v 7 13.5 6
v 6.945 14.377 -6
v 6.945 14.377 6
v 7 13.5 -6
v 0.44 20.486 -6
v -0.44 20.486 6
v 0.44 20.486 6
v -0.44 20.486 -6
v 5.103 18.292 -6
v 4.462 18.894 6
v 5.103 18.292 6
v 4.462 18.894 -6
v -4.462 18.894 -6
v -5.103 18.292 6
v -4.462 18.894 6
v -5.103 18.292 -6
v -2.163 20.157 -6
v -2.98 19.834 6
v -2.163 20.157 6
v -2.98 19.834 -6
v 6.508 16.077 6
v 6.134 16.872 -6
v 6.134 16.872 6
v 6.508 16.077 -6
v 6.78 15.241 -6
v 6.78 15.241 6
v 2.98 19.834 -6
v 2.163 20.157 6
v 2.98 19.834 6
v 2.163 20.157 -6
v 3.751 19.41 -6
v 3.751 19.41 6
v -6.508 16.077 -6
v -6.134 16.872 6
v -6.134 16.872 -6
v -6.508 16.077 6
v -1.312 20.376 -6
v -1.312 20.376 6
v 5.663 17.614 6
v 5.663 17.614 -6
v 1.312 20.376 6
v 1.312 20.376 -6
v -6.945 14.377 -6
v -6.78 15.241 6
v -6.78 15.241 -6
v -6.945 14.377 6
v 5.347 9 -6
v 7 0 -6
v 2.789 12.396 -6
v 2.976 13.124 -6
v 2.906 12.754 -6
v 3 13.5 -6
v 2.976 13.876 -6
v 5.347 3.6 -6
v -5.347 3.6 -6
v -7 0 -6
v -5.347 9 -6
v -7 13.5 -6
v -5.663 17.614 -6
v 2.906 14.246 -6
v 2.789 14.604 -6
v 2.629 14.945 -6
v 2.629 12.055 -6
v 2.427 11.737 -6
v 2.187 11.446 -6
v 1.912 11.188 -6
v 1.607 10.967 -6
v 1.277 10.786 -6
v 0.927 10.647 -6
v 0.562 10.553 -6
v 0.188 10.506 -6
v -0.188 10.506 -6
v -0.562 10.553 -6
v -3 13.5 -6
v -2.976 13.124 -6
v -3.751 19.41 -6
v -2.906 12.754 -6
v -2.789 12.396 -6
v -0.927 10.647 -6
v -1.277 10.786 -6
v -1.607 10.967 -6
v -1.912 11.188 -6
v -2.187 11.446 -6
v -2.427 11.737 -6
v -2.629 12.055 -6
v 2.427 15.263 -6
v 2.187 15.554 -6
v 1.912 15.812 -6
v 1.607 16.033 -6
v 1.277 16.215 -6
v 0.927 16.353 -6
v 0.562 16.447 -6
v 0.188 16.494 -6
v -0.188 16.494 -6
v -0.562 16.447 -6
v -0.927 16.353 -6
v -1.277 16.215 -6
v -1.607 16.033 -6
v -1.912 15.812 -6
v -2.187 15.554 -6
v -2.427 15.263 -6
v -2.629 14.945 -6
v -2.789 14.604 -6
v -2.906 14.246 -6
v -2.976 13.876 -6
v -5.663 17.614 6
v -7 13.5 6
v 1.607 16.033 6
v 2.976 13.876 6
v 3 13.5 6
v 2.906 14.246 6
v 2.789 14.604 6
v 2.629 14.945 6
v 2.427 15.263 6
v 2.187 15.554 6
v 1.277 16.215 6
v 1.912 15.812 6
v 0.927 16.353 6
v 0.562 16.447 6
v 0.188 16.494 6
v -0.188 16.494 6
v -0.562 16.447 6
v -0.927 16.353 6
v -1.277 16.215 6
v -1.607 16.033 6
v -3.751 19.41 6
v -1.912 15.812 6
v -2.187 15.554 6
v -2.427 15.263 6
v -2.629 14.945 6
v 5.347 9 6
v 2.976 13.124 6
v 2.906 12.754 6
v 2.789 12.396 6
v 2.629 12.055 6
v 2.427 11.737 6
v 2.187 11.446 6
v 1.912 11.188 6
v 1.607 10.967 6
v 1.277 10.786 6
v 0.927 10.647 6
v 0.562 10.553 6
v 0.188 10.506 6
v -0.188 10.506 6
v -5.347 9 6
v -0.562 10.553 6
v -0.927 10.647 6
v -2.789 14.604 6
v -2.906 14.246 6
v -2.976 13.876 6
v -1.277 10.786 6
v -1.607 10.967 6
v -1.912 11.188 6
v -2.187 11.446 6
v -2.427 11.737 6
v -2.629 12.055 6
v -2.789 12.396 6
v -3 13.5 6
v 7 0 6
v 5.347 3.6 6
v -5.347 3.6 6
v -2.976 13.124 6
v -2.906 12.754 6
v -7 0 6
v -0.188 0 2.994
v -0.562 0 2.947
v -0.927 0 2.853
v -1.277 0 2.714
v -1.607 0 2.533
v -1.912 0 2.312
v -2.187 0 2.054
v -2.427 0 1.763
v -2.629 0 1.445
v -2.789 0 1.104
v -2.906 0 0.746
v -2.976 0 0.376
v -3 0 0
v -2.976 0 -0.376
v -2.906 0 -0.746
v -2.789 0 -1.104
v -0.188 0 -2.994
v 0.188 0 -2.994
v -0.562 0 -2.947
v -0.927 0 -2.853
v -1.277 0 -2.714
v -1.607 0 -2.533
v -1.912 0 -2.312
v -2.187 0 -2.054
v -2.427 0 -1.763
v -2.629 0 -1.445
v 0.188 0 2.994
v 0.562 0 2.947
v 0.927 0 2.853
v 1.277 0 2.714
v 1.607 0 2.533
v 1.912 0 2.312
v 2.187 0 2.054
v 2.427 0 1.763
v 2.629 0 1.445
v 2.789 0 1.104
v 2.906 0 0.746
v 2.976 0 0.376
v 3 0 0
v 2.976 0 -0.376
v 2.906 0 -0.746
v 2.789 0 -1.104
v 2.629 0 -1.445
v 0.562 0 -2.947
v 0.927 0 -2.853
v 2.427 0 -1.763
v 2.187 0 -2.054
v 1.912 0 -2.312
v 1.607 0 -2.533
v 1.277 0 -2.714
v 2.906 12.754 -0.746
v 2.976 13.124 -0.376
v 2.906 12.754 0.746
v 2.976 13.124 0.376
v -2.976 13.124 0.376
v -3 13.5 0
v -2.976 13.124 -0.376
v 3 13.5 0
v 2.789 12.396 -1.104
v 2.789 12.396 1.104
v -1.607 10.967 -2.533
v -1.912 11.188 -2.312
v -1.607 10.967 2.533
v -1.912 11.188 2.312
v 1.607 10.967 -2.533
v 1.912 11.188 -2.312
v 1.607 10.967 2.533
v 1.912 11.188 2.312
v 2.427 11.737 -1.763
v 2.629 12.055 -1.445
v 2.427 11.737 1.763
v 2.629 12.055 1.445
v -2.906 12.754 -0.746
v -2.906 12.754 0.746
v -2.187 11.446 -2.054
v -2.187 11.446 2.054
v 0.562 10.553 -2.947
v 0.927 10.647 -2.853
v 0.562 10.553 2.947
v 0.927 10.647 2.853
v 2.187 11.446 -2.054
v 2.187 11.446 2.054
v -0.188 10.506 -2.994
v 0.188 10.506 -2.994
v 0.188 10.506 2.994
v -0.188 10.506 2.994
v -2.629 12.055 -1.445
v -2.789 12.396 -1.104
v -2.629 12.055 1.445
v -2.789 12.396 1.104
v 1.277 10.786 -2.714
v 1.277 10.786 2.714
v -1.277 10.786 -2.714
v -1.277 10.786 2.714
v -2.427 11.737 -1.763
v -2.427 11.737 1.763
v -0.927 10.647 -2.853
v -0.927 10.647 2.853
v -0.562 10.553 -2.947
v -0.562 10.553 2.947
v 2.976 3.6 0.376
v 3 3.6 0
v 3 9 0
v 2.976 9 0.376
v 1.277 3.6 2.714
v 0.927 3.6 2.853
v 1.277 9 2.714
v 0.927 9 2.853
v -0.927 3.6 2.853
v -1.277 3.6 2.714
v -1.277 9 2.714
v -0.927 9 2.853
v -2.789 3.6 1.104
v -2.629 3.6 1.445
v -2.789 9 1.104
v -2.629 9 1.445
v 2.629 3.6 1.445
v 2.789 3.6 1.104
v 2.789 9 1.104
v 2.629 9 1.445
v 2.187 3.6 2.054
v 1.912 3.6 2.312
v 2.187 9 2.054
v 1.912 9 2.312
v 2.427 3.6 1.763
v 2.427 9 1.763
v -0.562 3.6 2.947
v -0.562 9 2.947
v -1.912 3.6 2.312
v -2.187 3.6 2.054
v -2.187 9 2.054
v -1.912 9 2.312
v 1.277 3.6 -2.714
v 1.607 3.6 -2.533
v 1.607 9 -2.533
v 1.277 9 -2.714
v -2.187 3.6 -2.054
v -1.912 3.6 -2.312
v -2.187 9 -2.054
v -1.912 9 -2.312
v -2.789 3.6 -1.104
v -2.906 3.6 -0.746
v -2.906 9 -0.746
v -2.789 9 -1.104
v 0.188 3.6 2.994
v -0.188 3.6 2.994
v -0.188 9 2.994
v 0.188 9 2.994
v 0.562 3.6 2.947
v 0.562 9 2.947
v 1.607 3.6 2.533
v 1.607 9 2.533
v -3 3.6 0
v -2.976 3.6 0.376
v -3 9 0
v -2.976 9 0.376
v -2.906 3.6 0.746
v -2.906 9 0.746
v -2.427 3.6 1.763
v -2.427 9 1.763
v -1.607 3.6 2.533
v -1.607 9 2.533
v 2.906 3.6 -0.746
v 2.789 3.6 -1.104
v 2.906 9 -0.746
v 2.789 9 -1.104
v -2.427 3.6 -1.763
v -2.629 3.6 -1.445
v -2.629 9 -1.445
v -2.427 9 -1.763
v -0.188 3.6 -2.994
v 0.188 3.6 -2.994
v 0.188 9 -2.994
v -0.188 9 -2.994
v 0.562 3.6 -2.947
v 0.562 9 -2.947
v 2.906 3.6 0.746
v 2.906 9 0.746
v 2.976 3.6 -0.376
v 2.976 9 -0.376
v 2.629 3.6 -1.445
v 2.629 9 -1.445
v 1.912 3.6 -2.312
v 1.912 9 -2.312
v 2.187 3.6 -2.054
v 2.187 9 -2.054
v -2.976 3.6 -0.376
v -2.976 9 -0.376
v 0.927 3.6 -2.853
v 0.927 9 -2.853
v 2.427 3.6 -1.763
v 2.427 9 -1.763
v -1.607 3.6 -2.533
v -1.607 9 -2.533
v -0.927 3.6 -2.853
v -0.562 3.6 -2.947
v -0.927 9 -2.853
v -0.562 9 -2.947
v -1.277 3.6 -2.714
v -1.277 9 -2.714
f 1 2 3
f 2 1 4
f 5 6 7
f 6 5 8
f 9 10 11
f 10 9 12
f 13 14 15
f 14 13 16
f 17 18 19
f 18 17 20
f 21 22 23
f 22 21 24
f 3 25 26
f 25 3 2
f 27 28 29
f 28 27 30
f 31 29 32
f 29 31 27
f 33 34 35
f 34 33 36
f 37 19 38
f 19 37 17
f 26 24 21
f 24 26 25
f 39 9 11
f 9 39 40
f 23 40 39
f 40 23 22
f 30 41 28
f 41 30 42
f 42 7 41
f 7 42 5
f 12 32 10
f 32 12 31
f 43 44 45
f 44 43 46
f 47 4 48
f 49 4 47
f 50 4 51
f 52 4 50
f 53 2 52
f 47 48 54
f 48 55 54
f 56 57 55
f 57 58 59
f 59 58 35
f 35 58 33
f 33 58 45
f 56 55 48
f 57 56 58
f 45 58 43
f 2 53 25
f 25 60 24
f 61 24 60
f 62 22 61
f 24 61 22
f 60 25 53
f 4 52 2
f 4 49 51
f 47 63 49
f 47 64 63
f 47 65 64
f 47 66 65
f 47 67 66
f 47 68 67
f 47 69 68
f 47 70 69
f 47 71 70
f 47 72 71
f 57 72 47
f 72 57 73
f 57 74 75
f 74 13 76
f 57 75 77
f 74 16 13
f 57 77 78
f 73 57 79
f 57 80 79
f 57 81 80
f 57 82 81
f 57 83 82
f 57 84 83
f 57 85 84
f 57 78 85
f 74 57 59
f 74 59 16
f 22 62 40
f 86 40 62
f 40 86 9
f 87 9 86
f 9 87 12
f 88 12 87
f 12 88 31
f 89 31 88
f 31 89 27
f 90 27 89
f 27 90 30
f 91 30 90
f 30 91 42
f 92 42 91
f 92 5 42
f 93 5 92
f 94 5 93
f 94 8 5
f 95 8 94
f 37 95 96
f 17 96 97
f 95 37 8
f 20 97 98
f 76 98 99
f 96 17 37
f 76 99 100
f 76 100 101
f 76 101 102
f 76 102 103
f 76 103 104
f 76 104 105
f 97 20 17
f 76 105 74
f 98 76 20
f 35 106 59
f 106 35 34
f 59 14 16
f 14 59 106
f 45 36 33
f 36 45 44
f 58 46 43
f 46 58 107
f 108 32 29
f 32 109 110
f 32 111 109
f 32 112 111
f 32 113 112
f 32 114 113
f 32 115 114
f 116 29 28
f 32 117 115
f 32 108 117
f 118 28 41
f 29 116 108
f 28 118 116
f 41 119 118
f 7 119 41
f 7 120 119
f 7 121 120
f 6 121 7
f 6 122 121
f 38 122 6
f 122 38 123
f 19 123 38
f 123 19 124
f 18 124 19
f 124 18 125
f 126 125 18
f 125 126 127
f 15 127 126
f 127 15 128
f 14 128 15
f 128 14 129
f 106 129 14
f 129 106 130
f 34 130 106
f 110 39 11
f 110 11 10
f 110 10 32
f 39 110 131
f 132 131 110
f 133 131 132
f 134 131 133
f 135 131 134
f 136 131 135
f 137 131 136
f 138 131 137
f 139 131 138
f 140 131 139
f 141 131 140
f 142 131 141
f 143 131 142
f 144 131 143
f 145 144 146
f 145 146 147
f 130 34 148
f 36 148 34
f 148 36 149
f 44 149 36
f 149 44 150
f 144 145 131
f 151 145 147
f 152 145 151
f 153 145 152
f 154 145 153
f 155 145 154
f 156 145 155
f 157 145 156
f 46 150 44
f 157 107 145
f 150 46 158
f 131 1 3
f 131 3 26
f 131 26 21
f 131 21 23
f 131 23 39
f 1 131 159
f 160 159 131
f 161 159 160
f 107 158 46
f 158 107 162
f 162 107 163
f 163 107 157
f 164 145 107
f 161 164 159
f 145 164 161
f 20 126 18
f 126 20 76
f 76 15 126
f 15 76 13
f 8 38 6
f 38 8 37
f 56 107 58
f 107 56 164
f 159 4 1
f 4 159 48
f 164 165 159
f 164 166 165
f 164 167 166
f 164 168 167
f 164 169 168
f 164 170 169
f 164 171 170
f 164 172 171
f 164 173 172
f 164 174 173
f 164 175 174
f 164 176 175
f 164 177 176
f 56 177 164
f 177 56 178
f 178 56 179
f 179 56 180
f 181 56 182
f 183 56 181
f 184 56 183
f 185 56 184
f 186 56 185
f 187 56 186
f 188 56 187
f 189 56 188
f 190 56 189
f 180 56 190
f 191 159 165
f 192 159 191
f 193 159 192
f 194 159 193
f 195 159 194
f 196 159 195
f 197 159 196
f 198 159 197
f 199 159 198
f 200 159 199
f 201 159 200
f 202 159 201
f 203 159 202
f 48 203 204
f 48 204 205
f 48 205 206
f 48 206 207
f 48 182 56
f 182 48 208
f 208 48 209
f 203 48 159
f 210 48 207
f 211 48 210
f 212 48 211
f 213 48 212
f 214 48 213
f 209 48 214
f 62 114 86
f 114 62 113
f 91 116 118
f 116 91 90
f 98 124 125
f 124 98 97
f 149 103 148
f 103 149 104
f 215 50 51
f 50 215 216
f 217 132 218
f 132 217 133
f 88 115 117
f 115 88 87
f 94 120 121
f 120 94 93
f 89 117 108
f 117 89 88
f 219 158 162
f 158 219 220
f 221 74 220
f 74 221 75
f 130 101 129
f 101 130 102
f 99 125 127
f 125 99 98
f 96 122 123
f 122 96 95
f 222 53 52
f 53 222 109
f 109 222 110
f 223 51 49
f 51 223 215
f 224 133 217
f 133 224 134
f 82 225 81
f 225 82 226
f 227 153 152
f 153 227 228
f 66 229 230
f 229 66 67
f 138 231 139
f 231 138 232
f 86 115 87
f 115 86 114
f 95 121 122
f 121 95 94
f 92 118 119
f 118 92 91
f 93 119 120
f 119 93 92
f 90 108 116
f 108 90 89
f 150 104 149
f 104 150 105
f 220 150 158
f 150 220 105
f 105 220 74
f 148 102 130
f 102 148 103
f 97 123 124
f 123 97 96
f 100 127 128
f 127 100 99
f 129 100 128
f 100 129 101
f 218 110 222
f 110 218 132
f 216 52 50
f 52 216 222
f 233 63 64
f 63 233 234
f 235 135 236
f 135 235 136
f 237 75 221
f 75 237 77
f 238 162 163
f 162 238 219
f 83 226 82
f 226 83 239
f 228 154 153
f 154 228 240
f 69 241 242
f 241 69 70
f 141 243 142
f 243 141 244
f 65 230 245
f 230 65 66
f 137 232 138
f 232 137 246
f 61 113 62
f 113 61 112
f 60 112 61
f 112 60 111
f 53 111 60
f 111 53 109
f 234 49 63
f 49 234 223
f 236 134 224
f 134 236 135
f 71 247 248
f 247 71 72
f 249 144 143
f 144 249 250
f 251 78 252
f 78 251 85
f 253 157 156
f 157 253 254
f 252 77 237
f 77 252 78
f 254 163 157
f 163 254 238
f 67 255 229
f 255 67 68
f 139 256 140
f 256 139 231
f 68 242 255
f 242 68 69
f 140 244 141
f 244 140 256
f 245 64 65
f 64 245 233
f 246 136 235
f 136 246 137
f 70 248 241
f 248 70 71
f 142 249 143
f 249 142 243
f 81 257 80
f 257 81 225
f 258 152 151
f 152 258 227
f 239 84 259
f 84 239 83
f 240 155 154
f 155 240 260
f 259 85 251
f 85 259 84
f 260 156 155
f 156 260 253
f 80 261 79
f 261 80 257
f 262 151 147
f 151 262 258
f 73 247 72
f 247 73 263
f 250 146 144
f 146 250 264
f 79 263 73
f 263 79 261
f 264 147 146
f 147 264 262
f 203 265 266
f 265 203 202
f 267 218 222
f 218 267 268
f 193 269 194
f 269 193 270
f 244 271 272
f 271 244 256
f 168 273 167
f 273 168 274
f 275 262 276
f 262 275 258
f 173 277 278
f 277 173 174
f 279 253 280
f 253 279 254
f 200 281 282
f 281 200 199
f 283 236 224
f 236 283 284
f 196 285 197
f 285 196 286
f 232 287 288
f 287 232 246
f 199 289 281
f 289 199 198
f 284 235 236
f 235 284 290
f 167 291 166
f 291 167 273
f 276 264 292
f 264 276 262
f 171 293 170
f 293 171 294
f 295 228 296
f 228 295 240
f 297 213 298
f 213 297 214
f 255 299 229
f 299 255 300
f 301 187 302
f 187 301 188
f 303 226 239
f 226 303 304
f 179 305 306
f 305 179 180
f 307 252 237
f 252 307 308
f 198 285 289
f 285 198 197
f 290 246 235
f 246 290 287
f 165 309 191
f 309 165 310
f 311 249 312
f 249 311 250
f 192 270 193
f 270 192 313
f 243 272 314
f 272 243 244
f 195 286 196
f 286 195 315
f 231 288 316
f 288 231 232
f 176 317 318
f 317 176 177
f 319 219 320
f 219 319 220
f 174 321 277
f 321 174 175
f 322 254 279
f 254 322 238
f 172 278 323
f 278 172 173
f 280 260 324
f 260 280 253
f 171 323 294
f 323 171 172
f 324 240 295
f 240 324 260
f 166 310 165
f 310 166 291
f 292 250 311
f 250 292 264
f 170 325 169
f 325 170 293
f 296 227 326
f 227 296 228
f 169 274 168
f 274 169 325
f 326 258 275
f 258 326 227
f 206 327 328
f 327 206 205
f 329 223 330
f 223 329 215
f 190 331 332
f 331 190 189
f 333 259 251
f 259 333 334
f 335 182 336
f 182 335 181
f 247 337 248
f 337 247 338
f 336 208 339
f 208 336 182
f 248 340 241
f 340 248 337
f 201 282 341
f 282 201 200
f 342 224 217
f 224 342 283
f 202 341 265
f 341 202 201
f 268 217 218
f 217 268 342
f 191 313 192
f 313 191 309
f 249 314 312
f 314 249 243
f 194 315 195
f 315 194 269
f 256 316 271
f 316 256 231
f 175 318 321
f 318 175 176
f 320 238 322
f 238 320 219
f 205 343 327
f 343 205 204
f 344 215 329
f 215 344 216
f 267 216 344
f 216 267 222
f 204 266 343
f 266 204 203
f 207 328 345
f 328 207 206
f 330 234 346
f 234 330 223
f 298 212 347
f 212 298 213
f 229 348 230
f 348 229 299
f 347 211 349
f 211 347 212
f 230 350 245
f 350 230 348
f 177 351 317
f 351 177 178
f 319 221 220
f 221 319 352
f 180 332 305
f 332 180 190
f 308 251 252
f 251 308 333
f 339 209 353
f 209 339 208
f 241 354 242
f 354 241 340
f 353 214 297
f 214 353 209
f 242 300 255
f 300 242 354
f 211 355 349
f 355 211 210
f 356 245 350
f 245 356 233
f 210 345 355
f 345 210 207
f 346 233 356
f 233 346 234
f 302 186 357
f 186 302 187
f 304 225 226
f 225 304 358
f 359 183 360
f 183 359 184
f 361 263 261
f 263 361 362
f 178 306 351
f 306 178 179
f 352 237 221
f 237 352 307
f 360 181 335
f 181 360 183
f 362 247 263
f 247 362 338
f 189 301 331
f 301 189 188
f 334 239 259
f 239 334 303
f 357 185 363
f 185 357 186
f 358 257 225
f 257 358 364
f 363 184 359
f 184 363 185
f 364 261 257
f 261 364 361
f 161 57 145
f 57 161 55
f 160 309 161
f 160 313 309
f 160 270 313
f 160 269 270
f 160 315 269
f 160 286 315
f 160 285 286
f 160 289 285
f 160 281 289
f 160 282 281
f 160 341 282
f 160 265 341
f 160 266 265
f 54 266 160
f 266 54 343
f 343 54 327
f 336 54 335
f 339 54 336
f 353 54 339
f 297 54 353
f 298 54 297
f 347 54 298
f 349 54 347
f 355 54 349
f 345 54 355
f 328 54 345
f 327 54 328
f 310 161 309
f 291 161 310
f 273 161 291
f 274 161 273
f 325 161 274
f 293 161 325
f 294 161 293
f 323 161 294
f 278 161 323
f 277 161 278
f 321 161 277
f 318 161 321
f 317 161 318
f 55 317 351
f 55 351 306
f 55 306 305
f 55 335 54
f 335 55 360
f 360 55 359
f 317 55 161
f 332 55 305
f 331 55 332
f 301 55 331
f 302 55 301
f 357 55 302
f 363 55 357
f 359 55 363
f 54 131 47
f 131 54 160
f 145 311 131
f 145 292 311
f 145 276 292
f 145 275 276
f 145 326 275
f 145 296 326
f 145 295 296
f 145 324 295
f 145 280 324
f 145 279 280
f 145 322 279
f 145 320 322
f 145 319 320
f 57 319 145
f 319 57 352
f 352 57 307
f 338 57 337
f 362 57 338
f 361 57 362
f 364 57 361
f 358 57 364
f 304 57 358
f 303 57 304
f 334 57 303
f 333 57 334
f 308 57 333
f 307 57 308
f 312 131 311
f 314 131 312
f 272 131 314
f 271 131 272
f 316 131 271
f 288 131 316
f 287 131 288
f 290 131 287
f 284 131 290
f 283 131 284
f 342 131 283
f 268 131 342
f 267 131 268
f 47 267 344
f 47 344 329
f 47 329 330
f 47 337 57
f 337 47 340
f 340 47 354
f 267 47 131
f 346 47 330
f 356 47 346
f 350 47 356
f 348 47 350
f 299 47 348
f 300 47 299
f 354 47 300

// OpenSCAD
$fn = 50;


difference() {
	union() {
		translate(v = [0, 13.5000000000, -6.0000000000]) {
			rotate(a = [0, 0, 0]) {
				cylinder(h = 12, r = 7.0000000000);
			}
		}
		translate(v = [-7.0000000000, 0, -6.0000000000]) {
			rotate(a = [0, 0, 0]) {
				cube(size = [14, 13.5000000000, 12]);
			}
		}
	}
	union() {
		translate(v = [0.0000000000, 13.5000000000, -6.0000000000]) {
			rotate(a = [0, 0, 0]) {
				translate(v = [0, 0, -50]) {
					rotate(a = [0, 0, 0]) {
						cylinder(h = 100, r = 3.0000000000);
					}
				}
			}
		}
		translate(v = [0.0000000000, 13.5000000000, -6.0000000000]) {
			rotate(a = [0, 0, 0]) {
				translate(v = [0, 0, -50]) {
					rotate(a = [0, 0, 0]) {
						cylinder(h = 100, r = 1.5000000000);
					}
				}
			}
		}
		translate(v = [0.0000000000, 13.5000000000, 0]) {
			rotate(a = [90, 0, 0]) {
				cylinder(h = 13.5000000000, r = 3.0000000000);
			}
		}
		translate(v = [-5.3466204506, 9, -25]) {
			rotate(a = [90, 0, 0]) {
				cube(size = [10.6932409012, 100, 5.4000000000]);
			}
		}
	}
}
